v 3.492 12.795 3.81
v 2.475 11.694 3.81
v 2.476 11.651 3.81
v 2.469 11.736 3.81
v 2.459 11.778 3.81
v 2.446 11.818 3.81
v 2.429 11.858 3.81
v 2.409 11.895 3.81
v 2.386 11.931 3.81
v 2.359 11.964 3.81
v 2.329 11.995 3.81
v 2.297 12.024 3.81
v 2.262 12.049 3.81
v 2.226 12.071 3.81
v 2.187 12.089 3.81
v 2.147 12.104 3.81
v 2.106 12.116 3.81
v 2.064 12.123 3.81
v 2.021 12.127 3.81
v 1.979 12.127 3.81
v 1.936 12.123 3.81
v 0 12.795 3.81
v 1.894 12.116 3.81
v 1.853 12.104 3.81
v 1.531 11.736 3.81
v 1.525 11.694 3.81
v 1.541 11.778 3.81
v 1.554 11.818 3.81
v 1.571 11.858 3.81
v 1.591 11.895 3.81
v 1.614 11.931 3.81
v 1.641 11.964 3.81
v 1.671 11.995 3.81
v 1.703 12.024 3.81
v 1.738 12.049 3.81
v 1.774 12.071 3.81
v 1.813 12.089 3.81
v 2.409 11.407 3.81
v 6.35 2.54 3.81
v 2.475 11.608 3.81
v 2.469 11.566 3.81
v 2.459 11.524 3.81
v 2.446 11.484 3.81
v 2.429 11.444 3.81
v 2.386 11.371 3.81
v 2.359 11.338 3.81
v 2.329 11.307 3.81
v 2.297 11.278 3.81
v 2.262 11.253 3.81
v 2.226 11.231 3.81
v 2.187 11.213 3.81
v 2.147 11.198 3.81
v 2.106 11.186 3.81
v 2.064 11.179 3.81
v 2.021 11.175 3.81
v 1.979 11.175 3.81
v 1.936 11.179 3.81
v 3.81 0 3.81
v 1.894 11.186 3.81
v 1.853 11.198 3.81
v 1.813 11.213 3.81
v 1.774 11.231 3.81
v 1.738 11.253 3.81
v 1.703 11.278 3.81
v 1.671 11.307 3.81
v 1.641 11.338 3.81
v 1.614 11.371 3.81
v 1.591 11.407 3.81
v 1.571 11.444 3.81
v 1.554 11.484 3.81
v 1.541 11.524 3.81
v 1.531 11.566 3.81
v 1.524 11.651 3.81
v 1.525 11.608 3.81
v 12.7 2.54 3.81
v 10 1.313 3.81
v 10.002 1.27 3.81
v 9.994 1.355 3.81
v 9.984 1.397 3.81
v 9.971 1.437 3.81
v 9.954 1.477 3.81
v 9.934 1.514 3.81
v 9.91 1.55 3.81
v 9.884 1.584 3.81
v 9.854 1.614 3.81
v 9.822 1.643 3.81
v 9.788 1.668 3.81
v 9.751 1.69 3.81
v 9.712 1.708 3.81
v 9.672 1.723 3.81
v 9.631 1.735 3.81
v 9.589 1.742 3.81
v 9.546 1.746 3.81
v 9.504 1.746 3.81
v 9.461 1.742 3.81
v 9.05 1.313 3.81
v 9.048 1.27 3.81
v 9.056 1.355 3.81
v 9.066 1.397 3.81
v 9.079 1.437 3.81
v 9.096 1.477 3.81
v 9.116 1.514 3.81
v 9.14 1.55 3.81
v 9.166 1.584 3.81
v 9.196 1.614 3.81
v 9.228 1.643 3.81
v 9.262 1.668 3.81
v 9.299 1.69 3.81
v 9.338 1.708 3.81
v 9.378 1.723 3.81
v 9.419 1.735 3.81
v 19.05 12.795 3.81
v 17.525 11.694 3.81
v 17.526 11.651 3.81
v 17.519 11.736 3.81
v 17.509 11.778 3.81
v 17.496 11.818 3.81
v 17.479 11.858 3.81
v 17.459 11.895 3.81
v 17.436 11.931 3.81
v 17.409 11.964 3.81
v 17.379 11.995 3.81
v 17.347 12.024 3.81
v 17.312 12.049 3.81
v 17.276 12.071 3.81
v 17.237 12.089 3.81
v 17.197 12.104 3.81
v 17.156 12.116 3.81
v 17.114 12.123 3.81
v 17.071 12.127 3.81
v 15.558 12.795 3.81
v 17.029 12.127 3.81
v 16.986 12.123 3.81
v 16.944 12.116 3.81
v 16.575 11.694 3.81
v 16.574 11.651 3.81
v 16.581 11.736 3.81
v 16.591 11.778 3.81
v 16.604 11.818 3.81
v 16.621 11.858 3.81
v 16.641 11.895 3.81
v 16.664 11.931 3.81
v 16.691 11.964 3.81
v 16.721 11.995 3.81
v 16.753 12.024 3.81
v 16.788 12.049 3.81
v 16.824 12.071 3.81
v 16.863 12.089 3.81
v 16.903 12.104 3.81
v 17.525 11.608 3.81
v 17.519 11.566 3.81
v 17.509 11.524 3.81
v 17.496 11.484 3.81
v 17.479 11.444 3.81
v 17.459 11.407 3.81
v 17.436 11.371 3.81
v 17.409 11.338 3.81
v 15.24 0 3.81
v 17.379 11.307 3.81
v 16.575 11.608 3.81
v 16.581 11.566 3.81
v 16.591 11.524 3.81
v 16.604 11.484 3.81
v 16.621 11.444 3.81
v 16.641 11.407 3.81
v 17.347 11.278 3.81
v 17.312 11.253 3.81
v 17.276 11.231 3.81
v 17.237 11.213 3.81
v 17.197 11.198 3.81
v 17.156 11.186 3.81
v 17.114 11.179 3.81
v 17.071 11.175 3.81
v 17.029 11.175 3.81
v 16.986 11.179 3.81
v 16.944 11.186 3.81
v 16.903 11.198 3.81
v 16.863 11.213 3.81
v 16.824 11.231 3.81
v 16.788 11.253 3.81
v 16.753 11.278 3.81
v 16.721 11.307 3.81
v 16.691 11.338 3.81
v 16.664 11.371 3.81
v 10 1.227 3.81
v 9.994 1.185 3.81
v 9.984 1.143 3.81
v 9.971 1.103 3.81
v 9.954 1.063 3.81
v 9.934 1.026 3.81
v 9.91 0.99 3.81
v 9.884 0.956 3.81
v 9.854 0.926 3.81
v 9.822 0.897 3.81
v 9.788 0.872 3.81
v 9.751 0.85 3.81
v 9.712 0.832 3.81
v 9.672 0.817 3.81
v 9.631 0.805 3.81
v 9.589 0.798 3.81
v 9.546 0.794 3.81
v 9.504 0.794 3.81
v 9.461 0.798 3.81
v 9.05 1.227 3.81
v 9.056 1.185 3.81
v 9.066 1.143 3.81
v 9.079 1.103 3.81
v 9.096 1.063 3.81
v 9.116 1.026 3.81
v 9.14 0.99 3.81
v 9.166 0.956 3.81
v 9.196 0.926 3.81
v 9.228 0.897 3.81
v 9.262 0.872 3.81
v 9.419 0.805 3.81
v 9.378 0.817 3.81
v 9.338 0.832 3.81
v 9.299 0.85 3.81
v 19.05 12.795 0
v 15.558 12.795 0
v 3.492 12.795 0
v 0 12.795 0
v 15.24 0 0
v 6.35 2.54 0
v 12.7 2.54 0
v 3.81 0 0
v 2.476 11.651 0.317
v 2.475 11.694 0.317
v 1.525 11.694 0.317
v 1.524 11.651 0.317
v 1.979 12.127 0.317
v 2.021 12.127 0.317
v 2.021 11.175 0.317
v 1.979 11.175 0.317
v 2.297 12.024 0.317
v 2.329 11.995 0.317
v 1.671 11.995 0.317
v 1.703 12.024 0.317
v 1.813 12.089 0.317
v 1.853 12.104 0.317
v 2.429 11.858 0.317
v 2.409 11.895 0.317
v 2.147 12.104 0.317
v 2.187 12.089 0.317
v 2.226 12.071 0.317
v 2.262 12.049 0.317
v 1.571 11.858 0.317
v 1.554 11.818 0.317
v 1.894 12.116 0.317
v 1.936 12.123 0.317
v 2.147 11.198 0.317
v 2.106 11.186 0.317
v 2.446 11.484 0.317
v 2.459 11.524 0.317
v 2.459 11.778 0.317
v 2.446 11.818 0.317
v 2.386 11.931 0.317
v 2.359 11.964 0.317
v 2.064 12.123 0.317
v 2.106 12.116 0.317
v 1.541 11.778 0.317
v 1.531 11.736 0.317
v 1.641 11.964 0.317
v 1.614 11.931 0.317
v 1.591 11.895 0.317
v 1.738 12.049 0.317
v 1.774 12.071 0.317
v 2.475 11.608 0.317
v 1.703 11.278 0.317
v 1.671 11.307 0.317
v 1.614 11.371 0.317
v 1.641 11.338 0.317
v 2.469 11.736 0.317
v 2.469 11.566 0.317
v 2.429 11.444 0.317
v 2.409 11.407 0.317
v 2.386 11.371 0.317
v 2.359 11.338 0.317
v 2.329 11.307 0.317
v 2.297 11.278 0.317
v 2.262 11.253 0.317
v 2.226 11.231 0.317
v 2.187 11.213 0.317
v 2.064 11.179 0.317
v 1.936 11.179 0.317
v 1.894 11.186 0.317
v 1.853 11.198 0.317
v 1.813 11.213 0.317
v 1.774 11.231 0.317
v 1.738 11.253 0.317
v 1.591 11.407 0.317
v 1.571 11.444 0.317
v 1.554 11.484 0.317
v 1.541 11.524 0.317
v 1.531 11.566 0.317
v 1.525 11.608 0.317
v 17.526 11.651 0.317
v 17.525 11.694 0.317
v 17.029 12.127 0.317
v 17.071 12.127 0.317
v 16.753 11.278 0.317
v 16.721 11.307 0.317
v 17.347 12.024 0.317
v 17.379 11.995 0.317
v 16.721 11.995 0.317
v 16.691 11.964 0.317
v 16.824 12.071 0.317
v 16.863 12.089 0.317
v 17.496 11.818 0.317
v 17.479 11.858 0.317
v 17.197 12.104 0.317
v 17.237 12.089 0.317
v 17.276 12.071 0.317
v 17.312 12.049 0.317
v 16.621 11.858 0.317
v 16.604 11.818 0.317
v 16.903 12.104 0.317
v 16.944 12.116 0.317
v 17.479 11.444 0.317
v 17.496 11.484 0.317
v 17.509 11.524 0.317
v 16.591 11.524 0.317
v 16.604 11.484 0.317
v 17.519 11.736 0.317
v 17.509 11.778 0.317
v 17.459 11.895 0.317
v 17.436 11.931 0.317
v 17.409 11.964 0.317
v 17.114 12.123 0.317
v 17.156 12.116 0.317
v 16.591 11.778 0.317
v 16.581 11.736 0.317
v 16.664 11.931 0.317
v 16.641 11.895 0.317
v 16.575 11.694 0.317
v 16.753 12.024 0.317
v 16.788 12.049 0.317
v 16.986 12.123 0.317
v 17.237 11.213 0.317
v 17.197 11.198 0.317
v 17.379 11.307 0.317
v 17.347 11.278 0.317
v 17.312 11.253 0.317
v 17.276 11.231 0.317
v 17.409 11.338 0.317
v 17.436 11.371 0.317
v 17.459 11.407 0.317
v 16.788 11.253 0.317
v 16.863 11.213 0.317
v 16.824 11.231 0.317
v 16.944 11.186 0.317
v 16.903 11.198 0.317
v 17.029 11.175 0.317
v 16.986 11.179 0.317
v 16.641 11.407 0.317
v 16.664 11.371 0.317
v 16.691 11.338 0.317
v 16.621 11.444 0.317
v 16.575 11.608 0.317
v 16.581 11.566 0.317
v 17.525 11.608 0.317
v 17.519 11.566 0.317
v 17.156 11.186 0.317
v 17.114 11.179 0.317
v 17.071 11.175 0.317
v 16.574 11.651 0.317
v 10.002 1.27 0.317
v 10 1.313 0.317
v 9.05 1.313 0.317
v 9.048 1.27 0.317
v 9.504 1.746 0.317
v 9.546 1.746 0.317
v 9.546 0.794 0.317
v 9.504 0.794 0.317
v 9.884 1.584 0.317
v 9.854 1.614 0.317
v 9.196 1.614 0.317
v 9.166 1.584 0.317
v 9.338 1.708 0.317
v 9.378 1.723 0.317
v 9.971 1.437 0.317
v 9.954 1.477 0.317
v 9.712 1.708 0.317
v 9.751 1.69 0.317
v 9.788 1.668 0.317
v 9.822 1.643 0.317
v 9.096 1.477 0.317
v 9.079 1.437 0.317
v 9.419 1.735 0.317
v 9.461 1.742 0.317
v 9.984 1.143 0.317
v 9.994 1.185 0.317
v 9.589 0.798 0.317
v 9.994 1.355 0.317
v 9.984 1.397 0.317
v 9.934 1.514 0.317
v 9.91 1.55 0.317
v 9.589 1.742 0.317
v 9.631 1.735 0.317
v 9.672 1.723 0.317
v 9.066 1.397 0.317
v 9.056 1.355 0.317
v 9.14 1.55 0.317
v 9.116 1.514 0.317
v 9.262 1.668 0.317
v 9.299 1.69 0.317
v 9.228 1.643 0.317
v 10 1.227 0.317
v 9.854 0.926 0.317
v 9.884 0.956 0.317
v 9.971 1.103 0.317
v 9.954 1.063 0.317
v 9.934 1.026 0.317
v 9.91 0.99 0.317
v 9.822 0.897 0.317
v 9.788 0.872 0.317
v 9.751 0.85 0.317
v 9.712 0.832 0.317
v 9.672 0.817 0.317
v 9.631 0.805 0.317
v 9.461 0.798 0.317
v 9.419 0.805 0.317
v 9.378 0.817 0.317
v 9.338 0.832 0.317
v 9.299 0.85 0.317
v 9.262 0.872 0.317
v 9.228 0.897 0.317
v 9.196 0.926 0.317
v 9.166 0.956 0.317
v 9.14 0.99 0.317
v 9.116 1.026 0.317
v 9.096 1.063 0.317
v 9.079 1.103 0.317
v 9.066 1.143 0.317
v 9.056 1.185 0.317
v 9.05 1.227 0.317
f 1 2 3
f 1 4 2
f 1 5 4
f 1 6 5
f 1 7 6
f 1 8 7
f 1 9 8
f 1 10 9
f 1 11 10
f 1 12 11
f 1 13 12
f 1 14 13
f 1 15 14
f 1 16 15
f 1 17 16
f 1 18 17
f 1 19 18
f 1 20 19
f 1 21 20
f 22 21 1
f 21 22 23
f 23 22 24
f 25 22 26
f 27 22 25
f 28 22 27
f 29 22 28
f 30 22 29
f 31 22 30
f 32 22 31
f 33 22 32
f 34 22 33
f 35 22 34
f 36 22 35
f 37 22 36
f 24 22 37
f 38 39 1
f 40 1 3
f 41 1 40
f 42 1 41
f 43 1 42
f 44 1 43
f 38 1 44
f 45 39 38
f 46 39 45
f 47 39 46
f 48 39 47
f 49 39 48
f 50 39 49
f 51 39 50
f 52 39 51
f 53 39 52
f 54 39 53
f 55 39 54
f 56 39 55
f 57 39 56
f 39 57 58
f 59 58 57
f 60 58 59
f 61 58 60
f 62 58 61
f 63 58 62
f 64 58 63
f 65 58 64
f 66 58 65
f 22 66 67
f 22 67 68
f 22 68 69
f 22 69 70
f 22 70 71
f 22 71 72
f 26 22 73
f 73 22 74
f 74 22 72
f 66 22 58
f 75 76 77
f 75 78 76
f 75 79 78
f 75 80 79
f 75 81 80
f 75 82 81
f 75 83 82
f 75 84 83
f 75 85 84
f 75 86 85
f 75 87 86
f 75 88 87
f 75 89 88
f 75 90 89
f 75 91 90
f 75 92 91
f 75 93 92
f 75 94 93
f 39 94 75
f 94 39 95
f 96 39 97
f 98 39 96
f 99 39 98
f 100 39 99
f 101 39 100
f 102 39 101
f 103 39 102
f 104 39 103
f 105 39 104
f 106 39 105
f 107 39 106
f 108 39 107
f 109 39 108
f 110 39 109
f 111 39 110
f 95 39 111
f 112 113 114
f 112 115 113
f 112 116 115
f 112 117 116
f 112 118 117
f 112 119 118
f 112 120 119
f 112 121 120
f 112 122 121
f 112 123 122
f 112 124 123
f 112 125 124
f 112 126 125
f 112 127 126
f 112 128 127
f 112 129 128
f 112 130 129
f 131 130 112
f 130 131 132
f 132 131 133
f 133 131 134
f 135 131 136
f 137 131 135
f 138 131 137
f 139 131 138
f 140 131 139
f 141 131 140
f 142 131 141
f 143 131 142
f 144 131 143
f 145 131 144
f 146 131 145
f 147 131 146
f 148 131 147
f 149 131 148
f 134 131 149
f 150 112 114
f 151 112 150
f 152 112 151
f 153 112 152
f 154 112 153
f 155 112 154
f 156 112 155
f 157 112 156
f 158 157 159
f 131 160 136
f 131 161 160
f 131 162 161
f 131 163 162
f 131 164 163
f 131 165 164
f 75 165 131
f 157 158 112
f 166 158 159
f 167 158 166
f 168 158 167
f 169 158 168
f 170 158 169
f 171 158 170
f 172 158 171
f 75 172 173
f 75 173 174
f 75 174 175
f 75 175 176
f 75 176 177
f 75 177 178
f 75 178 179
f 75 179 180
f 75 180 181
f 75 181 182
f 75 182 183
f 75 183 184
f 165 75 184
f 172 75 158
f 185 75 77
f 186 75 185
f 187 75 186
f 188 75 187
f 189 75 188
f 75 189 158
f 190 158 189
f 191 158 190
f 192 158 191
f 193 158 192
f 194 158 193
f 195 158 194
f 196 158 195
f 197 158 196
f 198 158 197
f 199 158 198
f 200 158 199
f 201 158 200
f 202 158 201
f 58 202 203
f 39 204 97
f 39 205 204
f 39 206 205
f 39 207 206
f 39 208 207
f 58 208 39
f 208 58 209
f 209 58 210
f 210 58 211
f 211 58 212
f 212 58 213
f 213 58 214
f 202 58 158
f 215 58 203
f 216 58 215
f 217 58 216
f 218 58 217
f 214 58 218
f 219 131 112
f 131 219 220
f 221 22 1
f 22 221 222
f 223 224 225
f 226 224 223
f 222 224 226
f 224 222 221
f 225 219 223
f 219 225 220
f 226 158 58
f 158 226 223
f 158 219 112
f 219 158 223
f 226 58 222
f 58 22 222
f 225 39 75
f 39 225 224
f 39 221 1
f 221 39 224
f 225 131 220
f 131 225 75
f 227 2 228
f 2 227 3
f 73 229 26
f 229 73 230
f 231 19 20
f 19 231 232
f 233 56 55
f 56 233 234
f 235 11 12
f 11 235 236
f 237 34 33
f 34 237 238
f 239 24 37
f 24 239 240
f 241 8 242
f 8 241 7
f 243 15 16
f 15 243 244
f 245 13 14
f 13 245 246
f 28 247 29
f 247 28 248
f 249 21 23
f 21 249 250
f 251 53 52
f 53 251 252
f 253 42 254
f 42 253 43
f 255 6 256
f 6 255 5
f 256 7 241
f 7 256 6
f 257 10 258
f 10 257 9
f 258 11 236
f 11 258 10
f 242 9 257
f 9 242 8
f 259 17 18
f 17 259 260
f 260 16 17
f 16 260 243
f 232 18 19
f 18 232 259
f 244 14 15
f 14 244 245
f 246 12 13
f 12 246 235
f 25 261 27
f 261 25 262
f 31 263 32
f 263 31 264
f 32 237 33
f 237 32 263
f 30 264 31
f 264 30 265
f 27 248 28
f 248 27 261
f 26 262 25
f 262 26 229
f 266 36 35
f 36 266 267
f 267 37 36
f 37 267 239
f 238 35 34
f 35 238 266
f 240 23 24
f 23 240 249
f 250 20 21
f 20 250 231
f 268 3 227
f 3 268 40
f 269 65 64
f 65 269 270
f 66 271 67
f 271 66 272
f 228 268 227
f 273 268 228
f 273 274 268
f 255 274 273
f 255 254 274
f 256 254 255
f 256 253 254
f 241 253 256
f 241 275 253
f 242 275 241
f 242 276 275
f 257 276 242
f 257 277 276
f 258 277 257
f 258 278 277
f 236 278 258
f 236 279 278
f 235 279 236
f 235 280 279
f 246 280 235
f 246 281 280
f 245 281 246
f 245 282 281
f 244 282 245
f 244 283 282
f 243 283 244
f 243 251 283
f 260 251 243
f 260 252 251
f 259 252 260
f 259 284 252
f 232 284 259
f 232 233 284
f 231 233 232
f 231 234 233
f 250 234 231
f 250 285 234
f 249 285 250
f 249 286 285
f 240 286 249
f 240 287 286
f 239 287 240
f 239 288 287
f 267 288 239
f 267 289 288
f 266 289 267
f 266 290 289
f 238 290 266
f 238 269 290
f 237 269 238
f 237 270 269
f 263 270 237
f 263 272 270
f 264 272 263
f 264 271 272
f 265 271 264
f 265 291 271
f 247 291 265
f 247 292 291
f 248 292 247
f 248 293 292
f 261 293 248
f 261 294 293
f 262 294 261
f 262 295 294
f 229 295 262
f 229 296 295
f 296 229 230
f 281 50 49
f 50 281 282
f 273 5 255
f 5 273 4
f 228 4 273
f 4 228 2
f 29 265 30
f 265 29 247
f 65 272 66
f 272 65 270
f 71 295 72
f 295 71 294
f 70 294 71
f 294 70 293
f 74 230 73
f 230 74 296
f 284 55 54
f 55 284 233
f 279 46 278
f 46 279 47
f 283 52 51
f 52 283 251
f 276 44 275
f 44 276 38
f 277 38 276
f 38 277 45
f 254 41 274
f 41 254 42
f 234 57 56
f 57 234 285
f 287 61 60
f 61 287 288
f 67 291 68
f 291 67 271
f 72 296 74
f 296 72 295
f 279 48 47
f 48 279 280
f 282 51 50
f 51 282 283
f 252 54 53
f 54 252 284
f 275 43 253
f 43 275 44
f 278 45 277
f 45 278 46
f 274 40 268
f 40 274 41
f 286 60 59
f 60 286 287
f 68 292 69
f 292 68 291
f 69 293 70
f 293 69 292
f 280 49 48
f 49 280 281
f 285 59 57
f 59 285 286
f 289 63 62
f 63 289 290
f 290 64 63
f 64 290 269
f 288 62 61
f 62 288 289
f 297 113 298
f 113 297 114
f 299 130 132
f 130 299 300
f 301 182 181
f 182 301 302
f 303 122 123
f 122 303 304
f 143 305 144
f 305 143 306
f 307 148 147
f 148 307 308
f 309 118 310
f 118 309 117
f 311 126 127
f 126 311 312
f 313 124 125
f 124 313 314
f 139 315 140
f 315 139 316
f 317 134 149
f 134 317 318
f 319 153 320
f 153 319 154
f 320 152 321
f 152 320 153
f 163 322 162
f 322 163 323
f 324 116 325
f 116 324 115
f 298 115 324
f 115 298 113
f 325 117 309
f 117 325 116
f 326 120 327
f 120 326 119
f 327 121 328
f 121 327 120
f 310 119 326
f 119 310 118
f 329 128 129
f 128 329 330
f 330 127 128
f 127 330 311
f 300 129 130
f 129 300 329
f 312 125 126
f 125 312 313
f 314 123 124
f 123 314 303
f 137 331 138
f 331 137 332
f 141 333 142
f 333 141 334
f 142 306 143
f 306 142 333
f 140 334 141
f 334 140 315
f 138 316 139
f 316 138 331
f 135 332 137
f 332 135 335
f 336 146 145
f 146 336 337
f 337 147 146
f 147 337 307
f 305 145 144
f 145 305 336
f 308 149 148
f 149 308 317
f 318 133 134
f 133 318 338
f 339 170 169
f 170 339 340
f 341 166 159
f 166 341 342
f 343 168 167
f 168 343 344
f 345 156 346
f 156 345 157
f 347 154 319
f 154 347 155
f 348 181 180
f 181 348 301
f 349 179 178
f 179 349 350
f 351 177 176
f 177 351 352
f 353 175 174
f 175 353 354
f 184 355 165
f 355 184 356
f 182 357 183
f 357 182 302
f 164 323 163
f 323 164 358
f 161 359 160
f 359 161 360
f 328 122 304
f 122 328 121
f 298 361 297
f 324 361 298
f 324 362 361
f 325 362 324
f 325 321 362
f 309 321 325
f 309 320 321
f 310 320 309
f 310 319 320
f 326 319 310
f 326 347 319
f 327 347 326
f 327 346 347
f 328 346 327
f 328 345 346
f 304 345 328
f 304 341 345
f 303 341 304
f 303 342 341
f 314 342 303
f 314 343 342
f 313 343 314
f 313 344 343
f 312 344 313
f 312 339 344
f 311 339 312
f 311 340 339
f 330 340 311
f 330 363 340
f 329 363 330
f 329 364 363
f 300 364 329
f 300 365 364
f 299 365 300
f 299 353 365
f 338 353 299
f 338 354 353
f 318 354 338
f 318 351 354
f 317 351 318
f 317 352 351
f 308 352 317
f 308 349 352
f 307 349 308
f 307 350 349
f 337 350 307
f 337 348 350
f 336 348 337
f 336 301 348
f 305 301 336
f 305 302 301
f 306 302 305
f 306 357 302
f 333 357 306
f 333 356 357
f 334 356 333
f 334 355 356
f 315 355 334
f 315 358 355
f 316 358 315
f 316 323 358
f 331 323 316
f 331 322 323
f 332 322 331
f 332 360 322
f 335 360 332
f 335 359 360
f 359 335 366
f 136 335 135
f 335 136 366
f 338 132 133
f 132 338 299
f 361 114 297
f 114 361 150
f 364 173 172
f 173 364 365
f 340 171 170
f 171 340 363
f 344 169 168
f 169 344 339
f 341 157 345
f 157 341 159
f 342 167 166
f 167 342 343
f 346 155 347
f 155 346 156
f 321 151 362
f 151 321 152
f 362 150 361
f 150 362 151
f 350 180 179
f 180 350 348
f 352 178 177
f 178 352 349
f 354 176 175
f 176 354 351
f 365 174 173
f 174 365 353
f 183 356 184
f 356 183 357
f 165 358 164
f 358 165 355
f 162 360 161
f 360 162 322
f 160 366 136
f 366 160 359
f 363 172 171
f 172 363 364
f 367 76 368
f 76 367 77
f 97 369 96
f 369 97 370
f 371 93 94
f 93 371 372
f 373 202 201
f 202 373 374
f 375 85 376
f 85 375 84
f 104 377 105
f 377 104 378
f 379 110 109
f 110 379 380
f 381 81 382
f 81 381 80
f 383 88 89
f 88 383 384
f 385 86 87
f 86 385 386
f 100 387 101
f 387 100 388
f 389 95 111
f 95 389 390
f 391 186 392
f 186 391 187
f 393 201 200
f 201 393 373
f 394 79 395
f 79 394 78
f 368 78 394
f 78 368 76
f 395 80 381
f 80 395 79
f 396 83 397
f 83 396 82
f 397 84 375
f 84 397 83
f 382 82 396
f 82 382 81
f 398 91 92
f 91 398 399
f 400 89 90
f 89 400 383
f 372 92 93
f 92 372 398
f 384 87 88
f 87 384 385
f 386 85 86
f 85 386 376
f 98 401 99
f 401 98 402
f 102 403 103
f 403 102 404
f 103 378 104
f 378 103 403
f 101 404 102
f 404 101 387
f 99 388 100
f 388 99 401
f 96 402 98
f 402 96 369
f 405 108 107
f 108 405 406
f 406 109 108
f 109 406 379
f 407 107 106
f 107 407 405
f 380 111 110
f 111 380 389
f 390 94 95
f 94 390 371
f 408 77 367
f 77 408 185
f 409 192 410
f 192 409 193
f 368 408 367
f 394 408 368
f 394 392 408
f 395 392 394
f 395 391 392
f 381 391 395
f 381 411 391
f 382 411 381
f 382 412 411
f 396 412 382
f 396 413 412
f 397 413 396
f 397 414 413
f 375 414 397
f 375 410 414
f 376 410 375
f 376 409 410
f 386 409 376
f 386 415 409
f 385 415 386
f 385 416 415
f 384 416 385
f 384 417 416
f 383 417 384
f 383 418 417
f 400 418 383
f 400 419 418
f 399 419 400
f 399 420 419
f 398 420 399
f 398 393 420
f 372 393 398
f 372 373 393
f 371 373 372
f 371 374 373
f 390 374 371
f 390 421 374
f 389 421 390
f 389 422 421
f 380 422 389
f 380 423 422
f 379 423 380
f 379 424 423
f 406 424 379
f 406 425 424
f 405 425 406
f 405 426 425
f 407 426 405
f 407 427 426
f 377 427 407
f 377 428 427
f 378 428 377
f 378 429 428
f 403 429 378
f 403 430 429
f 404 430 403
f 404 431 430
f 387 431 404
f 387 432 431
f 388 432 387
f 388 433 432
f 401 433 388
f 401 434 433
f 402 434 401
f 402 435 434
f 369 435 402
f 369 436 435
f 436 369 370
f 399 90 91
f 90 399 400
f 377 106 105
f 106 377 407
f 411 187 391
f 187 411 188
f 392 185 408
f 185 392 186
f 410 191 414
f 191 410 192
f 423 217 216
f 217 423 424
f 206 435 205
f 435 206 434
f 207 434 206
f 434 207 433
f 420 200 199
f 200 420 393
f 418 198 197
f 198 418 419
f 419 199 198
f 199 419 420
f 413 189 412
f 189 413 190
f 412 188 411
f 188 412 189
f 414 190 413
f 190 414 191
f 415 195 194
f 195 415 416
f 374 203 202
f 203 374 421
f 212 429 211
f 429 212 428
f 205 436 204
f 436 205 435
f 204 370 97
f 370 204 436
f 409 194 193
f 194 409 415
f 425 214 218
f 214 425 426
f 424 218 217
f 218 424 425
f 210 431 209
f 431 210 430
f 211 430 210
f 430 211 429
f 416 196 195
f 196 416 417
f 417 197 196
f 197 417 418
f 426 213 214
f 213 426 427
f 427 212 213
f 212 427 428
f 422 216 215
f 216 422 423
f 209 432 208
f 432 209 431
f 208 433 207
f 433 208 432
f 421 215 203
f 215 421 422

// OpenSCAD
// Part   : Component 6 - Fore Deck Railing
// Author : Rafi Khan
// Team   : Innovator

difference(){

	// Initial Block
	cube(size=[19.05, 12.795, 3.81], center=false);
	// Left Triangle Subtraction
	translate([19.05, 0, 0]){
		rotate([90, 0, 180]){
			prism(3.81, 3.81, 12.795);
		}
	}

	// Right Triangle Subtraction
	translate([0, 0, 3.81]){
		rotate([90, 180, 180]){
			prism(3.81, 3.81, 12.795);
		}
	}

	// Center Cuboid Subtraction
	translate([6.35, 2.54, 0]) {
		cube(size=[6.35, 10.255, 3.81], center=false);
	}

	// Right Center Triangle Subtraction
	translate([6.35, 12.795, 3.81]){
		rotate([90, 180, 0]){
			prism(3.81, 2.858, 10.255);
		}
	}

	// Left Center Triangle Subtraction
	translate([12.70, 12.795, 0]){
		rotate([90, 0, 0]){
			prism(3.81, 2.858, 10.255);
		}
	}

	// Right Peg Insert
	translate([2, 11.651, 0.317]) {
		cylinder(h=3.493, d=0.953, center=false, $fn=70);
	}

	// Right Peg Insert
	translate([17.05, 11.651, 0.317]) {
		cylinder(h=3.493, d=0.953, center=false, $fn=70);
	}

	// Centre Peg Insert
	translate([9.525, 1.27, 0.317]) {
		cylinder(h=3.493, d=0.953, center=false, $fn=70);
	}

}

//Draw a prism based on a 
//right angled triangle
//l - length of prism
//w - width of triangle
//h - height of triangle
// Credits: https://github.com/dannystaple/OpenSCAD-Parts-Library/blob/master/prism.scad
module prism(l, w, h) {
	translate([0, l, 0]) rotate( a= [90, 0, 0]) 
	linear_extrude(height = l) polygon(points = [
		[0, 0],
		[w, 0],
		[0, h]
	], paths=[[0,1,2,0]]);
}
